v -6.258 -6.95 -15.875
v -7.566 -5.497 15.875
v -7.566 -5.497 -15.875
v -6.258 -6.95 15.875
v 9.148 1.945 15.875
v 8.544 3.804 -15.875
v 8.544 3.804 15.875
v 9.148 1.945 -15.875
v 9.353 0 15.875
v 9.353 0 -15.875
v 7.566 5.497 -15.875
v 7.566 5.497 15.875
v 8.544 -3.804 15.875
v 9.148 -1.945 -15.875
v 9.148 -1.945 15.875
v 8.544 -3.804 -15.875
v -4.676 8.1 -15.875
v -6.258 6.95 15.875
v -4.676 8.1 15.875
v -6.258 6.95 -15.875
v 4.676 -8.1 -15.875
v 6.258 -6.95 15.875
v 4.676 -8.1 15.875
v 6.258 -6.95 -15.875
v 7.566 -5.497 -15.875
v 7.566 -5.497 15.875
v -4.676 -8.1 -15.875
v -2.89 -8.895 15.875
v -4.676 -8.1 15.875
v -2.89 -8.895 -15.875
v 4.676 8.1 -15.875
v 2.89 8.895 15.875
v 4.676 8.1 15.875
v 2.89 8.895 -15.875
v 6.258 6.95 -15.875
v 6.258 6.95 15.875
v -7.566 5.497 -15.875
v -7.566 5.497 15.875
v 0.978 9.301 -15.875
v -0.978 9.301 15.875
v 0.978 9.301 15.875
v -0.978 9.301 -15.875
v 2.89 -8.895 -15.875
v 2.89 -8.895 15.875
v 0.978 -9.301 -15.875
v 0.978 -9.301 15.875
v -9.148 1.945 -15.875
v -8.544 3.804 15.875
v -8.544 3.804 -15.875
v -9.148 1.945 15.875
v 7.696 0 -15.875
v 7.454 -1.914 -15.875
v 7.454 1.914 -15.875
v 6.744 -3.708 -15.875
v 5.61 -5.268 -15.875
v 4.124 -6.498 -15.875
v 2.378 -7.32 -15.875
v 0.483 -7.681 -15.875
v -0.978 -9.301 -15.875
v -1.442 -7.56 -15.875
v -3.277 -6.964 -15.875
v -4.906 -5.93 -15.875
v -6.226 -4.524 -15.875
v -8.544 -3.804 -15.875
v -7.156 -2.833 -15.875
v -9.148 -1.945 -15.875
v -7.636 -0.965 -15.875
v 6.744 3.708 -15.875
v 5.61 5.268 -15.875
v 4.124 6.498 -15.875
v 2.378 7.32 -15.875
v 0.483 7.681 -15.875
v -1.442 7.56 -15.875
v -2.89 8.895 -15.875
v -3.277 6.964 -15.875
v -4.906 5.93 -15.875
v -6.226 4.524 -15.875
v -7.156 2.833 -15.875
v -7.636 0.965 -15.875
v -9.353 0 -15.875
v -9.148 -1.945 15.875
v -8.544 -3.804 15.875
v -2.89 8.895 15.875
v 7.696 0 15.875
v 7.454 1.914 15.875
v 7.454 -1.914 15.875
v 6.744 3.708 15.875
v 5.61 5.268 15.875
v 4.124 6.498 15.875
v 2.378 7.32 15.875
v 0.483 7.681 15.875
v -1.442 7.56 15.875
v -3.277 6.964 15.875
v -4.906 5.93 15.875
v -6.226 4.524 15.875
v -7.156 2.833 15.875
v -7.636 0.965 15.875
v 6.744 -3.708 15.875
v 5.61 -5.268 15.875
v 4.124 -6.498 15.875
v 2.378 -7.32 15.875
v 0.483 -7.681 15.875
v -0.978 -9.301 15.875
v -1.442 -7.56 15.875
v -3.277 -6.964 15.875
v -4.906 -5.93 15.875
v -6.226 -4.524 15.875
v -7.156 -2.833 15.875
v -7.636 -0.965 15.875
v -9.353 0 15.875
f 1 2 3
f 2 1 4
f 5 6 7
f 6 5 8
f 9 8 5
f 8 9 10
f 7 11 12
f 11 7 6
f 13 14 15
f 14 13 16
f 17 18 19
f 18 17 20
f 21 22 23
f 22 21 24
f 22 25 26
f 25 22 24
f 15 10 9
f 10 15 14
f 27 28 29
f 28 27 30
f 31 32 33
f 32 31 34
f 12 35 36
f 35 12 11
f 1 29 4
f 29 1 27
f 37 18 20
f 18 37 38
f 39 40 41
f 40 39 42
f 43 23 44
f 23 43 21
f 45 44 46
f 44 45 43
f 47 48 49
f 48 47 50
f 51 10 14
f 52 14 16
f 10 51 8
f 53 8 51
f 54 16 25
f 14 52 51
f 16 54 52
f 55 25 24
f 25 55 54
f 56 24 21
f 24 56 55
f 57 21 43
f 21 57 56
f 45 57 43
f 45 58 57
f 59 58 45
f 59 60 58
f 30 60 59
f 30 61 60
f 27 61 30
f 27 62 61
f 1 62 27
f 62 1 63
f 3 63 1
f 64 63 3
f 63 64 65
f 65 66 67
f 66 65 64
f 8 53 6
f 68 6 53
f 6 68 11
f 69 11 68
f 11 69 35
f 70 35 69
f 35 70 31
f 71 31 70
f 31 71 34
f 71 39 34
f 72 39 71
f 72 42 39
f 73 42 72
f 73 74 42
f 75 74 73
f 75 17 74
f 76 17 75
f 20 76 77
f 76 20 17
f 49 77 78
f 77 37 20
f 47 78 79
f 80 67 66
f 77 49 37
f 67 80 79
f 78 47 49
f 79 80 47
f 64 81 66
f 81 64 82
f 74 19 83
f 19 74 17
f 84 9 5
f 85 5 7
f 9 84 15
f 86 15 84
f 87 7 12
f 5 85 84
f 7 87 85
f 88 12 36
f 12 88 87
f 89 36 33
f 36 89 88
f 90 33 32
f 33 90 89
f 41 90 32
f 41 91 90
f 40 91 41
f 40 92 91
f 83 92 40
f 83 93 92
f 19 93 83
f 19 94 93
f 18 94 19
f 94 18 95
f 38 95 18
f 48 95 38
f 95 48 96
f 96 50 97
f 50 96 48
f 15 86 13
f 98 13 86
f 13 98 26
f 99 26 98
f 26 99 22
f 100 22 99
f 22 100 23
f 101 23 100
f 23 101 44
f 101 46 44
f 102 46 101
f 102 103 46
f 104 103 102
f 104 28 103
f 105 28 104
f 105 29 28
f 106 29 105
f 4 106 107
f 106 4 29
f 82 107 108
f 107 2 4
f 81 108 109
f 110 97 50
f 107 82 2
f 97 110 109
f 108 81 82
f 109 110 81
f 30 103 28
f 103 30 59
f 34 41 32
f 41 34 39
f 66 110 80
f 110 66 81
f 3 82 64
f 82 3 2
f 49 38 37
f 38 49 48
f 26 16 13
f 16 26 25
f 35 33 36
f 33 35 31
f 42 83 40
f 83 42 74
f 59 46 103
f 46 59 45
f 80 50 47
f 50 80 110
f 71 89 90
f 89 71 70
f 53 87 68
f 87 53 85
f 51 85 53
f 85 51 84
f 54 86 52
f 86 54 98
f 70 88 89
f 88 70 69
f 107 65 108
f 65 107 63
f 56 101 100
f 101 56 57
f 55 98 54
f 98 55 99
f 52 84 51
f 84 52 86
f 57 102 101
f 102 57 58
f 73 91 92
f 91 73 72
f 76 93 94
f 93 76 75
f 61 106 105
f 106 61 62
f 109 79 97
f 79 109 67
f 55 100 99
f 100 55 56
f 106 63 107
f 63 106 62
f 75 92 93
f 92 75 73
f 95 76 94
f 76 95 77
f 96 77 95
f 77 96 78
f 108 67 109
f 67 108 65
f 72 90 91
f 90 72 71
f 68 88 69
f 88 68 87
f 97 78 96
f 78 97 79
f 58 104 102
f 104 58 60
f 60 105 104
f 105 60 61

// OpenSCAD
difference() {
    cylinder(31.75, d=17.53*1.01+1, center=true);
    cylinder(31.75, d=15.24*1.01, center=true);
}
